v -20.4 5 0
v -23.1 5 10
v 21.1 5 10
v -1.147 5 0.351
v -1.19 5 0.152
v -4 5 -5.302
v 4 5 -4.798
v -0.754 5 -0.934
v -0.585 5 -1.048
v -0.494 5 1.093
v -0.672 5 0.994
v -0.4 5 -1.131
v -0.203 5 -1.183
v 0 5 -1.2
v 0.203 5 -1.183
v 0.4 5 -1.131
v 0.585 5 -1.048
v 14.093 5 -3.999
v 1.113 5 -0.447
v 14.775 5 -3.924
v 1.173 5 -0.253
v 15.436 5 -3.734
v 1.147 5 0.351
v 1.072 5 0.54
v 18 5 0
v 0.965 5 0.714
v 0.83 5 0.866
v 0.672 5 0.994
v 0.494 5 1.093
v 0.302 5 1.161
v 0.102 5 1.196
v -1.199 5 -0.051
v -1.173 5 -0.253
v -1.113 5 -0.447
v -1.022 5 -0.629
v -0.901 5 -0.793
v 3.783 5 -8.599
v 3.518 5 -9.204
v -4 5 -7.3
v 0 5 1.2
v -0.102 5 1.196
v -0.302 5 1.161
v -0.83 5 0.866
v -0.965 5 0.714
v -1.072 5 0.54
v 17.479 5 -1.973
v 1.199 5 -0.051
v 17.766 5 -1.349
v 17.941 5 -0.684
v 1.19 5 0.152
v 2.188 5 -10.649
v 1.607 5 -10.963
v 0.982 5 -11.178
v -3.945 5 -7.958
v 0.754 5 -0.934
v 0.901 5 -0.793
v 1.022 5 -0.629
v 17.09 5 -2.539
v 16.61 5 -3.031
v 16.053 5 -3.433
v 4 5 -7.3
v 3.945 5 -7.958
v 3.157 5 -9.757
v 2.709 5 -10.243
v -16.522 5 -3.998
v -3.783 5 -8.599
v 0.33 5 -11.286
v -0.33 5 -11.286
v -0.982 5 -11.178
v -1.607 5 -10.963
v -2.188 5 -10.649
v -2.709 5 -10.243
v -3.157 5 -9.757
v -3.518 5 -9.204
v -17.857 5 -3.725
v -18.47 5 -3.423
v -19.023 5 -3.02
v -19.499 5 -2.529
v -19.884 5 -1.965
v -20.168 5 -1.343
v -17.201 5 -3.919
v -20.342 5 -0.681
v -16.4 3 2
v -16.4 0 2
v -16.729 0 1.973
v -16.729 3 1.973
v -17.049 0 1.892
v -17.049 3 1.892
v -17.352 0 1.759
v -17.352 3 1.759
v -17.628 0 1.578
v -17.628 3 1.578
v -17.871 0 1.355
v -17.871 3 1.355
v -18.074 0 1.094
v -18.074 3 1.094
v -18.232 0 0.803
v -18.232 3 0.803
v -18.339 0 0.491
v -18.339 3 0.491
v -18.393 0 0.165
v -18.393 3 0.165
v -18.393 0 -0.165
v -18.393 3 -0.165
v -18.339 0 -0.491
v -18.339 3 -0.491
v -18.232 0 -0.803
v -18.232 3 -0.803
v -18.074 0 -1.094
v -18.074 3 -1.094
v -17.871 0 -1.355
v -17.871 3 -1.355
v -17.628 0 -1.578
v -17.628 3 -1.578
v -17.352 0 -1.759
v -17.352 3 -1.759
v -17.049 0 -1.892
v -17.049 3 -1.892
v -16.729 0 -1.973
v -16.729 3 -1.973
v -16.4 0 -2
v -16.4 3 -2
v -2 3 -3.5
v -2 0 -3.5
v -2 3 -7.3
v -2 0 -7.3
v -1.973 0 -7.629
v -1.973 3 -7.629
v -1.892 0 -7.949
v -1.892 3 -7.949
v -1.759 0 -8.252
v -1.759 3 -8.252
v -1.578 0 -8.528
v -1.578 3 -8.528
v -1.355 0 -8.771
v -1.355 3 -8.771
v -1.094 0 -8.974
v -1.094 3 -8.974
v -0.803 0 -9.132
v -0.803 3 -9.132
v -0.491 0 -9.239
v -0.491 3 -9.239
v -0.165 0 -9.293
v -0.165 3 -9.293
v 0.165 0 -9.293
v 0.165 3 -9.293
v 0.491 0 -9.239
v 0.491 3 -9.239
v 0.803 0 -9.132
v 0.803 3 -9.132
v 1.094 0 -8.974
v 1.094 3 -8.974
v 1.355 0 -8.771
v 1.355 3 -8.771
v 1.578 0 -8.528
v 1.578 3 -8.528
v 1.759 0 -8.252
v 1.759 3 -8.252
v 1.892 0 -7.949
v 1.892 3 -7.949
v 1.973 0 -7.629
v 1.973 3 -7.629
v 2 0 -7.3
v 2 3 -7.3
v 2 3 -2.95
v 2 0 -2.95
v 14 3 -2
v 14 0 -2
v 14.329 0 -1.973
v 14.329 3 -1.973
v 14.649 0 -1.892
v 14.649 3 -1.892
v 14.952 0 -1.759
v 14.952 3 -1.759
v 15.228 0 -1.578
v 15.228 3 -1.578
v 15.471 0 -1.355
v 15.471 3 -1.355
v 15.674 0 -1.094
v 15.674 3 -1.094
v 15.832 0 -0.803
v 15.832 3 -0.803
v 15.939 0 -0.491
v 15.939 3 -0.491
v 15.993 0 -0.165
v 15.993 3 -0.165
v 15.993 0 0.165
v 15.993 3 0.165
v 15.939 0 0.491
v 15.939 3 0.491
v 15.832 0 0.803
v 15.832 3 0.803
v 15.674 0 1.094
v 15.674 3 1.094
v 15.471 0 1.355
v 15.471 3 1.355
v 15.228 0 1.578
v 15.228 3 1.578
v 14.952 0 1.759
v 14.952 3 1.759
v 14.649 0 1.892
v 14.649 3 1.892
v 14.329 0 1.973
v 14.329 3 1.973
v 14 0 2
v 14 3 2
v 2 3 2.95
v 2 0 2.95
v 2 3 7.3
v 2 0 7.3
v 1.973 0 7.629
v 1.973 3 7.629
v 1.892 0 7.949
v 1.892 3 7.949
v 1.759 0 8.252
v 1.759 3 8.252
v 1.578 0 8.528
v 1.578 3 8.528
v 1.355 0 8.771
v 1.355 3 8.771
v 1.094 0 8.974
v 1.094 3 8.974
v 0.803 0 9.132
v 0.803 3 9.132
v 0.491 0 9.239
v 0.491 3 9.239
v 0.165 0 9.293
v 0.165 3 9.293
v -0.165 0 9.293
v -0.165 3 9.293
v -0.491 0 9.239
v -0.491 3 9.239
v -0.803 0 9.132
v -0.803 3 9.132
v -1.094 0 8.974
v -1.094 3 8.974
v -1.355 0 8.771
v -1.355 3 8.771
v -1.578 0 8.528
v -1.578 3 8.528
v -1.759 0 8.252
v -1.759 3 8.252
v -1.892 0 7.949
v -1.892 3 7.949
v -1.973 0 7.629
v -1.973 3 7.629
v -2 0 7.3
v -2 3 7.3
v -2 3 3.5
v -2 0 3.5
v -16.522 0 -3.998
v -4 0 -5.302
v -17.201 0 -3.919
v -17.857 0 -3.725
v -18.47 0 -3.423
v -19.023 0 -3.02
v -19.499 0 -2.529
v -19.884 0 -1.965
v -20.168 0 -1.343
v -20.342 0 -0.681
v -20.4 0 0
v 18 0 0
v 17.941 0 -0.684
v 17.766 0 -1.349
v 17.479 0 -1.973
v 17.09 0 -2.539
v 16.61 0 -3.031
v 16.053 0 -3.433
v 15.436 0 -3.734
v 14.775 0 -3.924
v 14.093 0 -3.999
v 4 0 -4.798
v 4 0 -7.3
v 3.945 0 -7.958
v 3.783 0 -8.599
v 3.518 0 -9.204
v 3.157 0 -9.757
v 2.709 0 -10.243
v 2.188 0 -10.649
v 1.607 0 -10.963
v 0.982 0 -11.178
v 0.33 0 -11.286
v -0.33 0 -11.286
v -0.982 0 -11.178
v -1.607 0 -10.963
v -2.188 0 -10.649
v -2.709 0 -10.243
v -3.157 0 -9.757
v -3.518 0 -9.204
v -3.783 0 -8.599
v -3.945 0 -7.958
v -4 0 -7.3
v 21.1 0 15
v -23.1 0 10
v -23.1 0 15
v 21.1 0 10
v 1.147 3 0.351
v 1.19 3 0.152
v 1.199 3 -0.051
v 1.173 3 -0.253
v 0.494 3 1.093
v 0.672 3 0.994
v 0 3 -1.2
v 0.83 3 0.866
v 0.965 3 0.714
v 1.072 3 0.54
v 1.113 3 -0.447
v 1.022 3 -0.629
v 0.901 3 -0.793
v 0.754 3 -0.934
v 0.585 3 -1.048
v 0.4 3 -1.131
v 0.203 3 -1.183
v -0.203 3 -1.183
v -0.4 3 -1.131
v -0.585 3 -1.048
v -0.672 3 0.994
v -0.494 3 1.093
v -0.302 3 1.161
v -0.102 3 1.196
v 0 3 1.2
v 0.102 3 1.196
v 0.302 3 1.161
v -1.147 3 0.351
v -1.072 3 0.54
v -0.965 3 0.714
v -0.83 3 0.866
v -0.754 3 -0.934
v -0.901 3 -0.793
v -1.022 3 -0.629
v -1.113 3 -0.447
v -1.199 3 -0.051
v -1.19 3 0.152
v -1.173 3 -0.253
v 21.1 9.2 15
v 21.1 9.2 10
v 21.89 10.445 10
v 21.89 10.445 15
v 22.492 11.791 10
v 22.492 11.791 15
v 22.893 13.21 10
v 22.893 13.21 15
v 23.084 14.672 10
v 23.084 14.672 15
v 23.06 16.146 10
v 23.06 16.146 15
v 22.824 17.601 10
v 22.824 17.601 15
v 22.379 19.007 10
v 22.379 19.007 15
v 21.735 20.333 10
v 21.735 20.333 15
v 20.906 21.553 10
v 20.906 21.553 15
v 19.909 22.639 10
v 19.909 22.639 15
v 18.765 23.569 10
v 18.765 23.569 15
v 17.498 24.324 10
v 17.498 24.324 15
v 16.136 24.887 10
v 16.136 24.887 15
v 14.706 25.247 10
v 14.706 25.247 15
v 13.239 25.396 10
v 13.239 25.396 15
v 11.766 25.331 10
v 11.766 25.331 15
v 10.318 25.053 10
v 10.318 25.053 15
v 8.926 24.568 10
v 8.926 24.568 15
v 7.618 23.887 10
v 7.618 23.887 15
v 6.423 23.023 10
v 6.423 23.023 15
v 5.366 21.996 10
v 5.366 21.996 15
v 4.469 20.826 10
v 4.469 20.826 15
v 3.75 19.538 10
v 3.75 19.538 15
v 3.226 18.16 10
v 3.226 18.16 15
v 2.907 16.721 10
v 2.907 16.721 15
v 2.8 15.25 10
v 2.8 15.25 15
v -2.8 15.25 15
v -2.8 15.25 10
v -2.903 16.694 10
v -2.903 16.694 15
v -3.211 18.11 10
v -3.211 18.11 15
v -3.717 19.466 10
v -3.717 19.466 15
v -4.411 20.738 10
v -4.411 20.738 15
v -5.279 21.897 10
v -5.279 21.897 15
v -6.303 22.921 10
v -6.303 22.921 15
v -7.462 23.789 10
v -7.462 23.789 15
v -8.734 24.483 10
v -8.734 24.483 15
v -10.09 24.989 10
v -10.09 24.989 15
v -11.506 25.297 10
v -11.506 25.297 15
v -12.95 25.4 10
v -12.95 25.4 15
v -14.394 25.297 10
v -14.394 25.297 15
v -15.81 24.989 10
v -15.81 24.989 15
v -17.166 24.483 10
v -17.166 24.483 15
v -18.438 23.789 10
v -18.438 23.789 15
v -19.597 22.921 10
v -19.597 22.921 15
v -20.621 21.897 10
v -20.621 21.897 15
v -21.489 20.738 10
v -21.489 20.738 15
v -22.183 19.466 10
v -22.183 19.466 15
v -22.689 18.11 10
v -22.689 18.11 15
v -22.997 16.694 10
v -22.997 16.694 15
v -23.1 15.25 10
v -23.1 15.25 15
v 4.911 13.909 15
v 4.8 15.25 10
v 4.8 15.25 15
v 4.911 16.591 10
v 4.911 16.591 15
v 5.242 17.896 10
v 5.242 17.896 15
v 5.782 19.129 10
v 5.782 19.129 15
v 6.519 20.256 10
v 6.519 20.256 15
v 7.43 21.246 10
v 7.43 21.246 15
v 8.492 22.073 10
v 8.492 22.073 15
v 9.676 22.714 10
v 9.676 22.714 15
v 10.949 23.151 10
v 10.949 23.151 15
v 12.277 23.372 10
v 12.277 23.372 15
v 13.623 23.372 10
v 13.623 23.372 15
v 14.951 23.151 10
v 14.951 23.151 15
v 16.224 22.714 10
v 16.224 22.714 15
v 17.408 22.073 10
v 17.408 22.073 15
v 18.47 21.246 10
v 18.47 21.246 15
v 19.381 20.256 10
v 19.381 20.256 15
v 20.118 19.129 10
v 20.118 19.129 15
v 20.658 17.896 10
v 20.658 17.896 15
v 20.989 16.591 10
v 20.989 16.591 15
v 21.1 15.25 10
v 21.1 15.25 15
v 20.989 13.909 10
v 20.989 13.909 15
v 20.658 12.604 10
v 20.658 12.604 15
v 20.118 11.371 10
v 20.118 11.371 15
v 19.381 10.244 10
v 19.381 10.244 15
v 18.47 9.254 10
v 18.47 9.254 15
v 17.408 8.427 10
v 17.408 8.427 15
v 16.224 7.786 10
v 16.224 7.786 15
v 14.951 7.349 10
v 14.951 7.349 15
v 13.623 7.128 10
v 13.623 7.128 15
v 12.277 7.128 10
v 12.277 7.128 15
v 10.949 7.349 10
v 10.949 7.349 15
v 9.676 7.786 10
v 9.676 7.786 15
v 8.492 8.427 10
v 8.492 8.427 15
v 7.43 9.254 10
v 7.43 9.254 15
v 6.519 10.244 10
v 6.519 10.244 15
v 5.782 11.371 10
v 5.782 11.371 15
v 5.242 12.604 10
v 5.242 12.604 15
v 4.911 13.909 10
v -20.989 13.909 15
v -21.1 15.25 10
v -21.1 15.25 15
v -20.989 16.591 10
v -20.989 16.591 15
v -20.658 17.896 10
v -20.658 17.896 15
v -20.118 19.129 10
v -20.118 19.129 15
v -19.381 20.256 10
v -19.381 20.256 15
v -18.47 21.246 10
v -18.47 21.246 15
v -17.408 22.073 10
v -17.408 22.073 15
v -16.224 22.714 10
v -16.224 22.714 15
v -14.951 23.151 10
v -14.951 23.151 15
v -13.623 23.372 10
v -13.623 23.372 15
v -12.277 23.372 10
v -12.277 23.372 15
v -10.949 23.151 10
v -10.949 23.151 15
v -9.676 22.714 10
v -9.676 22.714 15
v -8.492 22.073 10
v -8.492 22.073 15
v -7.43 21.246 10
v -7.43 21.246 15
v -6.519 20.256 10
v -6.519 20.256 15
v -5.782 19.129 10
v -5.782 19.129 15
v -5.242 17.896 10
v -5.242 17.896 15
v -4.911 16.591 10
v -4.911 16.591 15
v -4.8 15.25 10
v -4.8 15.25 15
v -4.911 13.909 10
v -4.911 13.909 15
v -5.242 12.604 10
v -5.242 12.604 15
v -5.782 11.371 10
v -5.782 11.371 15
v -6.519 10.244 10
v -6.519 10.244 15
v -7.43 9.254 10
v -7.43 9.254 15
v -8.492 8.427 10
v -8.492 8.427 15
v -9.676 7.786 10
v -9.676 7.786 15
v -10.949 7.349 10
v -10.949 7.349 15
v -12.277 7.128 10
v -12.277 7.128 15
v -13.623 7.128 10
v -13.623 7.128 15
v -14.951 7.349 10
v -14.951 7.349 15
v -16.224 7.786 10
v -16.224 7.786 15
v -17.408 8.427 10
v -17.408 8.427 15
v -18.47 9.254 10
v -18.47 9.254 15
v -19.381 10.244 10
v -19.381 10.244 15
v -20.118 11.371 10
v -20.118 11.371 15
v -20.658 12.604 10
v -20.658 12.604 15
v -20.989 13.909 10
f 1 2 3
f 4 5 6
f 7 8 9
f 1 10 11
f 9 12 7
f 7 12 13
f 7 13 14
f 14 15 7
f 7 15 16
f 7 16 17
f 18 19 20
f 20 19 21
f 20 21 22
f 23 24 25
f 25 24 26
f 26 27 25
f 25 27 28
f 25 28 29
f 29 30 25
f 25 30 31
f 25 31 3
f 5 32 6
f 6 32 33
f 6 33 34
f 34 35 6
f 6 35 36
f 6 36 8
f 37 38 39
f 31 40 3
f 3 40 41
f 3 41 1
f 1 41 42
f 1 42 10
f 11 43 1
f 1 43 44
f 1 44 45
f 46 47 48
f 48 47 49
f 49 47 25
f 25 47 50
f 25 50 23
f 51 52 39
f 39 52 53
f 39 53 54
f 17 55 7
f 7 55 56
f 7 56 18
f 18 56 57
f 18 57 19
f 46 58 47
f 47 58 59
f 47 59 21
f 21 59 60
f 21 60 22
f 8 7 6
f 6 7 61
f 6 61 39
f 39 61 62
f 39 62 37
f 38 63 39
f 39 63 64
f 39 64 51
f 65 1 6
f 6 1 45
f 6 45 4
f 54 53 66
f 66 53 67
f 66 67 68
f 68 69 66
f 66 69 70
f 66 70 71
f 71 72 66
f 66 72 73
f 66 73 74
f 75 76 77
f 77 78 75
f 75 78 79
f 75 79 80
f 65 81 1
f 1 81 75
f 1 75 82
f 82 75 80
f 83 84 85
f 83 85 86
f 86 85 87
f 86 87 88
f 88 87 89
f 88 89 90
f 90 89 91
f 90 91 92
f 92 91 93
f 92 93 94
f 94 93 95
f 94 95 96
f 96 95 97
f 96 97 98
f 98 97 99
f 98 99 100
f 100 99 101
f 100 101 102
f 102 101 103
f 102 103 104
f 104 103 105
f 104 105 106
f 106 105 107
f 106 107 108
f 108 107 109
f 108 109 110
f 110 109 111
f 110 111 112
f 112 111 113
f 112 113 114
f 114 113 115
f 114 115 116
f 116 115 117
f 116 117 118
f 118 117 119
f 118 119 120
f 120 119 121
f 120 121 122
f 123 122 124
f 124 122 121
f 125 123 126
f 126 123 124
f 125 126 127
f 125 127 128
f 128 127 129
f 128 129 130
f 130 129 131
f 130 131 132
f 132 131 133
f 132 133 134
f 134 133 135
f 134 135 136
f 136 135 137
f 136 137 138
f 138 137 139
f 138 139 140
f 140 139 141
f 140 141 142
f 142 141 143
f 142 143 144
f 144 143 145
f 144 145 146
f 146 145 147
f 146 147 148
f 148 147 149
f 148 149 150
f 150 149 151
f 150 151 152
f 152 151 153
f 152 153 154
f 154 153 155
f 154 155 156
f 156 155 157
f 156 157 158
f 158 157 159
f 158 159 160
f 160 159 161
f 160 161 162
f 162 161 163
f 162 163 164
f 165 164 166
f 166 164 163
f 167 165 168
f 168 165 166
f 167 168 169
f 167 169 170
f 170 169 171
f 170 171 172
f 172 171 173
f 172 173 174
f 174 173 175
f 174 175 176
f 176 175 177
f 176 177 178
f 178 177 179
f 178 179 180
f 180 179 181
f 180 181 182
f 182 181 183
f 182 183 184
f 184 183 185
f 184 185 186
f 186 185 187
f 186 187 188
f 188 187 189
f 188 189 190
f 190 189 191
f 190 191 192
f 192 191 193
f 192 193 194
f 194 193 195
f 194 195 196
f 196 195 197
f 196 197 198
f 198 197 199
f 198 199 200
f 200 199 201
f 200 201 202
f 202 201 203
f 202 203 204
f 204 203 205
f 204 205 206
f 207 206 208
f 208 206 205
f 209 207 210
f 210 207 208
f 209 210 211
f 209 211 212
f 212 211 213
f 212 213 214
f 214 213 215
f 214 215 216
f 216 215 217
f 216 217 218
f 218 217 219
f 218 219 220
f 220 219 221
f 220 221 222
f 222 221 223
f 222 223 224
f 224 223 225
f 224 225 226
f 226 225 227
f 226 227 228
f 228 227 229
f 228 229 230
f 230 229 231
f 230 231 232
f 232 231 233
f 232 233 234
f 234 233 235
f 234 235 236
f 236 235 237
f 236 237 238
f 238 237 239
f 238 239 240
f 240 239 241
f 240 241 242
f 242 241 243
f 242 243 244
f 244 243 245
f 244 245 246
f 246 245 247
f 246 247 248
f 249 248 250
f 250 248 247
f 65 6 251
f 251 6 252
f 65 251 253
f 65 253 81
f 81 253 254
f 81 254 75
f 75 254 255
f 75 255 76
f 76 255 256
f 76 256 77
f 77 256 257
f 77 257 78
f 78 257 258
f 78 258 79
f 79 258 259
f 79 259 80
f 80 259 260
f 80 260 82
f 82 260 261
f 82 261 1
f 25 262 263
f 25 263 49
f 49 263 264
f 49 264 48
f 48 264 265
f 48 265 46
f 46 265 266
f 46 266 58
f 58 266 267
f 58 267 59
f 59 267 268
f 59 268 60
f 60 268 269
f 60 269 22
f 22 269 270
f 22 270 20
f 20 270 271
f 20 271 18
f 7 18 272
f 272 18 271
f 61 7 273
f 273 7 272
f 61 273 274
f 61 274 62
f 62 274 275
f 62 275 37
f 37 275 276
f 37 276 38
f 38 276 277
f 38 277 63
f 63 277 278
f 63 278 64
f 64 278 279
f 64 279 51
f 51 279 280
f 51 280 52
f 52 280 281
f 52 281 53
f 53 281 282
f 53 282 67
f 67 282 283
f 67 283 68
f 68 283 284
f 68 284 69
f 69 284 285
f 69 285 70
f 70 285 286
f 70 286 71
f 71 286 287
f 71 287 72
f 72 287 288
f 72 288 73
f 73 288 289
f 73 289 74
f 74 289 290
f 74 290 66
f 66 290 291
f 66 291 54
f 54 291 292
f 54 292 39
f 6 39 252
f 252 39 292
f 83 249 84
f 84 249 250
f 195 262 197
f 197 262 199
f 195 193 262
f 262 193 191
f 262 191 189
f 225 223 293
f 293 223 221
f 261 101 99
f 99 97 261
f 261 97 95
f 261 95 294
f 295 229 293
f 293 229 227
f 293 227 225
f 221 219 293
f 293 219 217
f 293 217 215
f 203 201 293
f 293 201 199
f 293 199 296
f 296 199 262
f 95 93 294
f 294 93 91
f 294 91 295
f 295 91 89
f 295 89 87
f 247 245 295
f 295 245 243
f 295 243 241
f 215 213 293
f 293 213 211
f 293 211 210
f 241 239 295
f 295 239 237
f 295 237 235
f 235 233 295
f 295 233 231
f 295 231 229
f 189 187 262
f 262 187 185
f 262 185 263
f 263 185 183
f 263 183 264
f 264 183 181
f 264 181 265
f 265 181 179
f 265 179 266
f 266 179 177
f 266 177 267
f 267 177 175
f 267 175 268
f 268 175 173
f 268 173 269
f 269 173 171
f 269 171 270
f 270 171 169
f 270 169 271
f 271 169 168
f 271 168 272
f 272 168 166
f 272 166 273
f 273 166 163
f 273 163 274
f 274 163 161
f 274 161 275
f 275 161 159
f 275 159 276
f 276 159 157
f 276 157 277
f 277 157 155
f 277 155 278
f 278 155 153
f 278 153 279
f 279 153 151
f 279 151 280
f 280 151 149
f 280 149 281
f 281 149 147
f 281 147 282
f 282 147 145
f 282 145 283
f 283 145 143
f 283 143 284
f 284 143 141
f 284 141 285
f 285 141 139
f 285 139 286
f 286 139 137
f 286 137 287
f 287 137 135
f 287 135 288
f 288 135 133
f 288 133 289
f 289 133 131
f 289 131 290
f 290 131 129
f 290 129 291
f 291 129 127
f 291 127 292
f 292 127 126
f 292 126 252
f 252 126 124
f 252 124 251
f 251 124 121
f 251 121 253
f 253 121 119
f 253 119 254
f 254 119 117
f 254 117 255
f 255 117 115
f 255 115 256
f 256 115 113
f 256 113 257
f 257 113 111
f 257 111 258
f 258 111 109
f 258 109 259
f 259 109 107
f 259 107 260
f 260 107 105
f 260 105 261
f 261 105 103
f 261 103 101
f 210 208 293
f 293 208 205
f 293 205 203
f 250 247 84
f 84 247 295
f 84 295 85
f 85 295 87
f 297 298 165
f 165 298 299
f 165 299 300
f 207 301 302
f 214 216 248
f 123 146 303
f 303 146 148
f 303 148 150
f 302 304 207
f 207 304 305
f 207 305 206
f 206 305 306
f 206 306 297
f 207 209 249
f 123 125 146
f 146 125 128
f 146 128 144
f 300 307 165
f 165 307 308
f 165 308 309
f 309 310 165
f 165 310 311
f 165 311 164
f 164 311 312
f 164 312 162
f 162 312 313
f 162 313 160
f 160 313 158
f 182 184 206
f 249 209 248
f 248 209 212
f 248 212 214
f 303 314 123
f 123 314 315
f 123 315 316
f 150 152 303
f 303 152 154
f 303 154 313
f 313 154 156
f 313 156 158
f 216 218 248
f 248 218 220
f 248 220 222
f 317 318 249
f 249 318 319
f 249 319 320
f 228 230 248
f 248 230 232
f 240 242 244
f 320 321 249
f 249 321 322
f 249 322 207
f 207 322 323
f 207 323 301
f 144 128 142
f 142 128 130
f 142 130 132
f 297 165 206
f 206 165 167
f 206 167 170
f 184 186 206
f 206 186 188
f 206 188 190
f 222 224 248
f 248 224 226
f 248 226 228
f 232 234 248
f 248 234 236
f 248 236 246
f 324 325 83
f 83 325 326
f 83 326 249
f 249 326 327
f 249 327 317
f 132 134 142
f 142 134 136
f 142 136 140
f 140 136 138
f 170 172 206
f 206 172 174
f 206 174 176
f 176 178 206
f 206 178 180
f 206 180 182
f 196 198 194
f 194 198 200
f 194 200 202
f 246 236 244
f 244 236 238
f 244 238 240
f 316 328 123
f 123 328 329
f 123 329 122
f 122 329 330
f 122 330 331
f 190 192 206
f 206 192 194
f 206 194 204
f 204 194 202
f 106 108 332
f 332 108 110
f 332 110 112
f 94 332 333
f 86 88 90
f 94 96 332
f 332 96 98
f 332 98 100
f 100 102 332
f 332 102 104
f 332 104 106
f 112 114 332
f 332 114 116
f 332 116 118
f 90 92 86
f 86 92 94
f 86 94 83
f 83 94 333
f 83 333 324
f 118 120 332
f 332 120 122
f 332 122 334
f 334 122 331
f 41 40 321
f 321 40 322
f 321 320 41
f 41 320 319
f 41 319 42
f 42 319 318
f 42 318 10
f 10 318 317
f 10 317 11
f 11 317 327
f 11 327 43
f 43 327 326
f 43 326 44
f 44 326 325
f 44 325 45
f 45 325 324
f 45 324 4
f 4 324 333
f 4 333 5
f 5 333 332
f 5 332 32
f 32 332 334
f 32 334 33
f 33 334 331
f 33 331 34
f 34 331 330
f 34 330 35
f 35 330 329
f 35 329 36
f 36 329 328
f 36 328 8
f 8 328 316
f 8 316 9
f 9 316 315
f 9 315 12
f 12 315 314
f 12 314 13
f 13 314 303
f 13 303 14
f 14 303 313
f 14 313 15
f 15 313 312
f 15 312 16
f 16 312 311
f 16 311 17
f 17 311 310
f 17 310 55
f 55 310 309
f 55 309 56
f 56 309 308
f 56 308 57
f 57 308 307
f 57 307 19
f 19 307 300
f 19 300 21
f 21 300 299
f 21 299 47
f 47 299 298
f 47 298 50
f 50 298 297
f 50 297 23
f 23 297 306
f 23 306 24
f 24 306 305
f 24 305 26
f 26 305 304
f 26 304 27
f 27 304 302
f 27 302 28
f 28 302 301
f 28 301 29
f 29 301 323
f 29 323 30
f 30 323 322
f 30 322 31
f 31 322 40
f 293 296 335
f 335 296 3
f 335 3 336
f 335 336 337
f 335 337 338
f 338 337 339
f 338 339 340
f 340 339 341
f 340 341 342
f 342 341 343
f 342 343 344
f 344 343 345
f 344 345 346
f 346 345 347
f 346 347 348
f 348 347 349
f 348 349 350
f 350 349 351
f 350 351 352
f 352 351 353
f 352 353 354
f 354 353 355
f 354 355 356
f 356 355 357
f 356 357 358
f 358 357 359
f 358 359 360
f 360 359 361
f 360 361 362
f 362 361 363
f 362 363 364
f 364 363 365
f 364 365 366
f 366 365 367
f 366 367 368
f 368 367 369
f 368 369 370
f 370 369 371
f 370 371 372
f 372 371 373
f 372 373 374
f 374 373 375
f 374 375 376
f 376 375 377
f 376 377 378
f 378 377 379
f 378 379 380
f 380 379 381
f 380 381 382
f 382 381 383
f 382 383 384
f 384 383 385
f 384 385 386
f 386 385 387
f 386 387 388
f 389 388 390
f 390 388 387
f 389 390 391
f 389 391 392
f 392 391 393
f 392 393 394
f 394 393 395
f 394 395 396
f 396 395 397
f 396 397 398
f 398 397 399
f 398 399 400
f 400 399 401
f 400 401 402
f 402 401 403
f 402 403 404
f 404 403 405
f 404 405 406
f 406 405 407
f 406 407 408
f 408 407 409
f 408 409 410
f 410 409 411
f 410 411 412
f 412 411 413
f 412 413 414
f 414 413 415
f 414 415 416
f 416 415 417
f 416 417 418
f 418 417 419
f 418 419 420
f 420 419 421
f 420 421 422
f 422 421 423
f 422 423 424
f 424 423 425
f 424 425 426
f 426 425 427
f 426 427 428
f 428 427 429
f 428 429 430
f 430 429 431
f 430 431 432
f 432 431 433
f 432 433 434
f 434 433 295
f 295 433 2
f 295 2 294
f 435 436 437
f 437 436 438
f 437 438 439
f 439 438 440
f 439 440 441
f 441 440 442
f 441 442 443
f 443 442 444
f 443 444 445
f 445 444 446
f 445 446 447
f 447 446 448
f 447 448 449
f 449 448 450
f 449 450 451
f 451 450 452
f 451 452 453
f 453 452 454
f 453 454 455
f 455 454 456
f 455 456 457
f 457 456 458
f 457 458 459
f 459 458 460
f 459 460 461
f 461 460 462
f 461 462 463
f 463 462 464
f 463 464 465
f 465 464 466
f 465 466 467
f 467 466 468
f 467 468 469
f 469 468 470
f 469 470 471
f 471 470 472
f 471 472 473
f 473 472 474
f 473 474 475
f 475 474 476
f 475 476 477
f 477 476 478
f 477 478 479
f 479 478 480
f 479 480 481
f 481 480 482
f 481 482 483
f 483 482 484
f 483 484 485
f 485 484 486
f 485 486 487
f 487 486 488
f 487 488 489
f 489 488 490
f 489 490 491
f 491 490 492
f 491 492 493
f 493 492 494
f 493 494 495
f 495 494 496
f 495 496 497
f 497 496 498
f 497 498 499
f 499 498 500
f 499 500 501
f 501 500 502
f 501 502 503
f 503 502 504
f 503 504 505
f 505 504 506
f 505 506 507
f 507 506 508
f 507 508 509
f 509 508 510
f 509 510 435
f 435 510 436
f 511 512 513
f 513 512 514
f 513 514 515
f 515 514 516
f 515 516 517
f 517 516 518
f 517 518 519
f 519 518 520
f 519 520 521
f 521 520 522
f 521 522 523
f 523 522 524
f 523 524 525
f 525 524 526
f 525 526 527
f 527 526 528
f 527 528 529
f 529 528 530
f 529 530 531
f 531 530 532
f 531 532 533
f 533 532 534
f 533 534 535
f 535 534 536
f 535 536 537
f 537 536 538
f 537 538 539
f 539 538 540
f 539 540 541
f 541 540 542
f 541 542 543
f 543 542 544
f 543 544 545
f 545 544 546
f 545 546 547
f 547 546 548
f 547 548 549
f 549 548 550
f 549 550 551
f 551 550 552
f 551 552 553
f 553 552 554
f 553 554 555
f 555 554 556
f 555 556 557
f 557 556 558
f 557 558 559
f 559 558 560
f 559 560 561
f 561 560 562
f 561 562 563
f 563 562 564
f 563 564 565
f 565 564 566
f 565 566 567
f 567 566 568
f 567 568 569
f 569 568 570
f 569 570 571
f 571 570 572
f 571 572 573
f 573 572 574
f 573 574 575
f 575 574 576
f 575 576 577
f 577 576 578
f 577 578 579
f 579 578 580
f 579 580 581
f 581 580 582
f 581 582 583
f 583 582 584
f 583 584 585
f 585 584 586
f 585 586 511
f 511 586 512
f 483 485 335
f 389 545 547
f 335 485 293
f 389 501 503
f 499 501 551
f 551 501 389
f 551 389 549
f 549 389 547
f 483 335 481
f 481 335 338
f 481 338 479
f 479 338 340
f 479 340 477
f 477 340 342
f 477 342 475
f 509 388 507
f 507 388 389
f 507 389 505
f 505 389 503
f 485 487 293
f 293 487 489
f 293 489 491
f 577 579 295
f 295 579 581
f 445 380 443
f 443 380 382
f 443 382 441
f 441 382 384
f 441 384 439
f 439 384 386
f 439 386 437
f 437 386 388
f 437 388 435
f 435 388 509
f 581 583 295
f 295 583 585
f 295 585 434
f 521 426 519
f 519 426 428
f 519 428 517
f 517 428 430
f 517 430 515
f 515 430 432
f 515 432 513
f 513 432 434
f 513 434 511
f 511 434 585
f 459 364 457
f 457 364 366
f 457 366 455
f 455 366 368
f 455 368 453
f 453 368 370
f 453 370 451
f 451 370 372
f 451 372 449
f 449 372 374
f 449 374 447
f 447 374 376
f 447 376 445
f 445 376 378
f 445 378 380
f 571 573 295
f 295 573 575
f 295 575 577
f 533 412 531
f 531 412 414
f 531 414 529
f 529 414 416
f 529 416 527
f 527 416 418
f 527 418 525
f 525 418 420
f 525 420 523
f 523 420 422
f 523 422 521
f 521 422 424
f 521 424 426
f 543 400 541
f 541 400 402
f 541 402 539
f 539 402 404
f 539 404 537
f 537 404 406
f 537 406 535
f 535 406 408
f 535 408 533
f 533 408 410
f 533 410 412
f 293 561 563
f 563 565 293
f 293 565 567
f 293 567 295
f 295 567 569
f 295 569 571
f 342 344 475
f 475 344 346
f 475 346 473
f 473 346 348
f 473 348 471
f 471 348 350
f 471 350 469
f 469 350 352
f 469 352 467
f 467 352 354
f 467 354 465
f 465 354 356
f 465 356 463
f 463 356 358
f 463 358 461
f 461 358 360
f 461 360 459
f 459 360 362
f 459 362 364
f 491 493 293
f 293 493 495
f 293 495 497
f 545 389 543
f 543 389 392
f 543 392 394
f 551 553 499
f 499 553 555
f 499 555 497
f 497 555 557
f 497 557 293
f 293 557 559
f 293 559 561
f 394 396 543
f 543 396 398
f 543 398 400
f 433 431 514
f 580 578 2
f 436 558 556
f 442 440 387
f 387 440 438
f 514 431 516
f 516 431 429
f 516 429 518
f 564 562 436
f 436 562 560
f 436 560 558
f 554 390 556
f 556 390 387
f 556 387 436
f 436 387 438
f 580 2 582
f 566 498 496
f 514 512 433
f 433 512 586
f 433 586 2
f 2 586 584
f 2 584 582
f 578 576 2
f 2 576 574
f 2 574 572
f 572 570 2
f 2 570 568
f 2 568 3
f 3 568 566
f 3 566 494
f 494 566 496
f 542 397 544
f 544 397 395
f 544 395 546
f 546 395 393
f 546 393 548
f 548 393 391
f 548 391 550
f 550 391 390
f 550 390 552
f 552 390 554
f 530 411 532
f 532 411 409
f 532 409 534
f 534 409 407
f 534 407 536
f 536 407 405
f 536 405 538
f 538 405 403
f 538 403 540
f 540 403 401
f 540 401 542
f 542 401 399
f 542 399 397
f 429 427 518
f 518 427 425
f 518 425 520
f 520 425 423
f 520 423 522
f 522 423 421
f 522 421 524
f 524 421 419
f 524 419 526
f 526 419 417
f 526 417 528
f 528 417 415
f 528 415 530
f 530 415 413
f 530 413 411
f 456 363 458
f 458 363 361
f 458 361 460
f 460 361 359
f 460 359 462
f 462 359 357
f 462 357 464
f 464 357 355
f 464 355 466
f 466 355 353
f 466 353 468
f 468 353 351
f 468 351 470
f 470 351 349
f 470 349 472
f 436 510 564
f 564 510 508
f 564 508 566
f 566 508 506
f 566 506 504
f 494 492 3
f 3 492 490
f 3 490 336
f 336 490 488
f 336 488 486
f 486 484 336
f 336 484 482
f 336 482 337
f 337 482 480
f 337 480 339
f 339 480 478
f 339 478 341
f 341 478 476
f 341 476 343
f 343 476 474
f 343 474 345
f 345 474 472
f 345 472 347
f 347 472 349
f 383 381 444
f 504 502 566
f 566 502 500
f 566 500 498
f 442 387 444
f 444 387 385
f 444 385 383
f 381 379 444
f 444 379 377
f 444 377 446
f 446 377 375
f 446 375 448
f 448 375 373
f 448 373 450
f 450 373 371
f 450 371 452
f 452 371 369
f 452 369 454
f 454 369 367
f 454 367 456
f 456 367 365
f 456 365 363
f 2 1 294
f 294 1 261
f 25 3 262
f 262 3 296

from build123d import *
from build123d.topology import SkipClean

# Parameters (mm, degrees)
BOSS_EXTRUDE1_DEPTH = 3
SKETCH3_R           = 1.2
BOSS_EXTRUDE2_DEPTH = 2
SKETCH6_R           = 8.15
BOSS_EXTRUDE4_DEPTH = 5
BOSS_EXTRUDE5_START = -5
BOSS_EXTRUDE5_DEPTH = 5


with BuildPart() as part:
    # Sketch2 → Boss-Extrude1 (new body)
    with BuildSketch(Plane(origin=(0, 0, 0), x_dir=(1, 0, 0), z_dir=(0, 1, 0))):
        with BuildLine():
            Line((4, -7.3), (4, -4.797924238))
            Line((4, -4.797924238), (14.092577275, -3.998928538))
            ThreePointArc((14.092577275, -3.998928538), (18, 0), (14.092577275, 3.998928538))
            Line((14.092577275, 3.998928538), (4, 4.797924238))
            Line((4, 4.797924238), (4, 7.3))
            ThreePointArc((4, 7.3), (0, 11.3), (-4, 7.3))
            Line((-4, 7.3), (-4, 5.302488085))
            Line((-4, 5.302488085), (-16.521647449, 3.998149809))
            ThreePointArc((-16.521647449, 3.998149809), (-20.4, 0), (-16.521647449, -3.998149809))
            Line((-16.521647449, -3.998149809), (-4, -5.302488085))
            Line((-4, -5.302488085), (-4, -7.3))
            ThreePointArc((-4, -7.3), (0, -11.3), (4, -7.3))
        make_face()
        with BuildLine():
            ThreePointArc((-16.4, -2), (-18.4, 0), (-16.4, 2))
            Line((-16.4, 2), (-2, 3.5))
            Line((-2, 3.5), (-2, 7.3))
            ThreePointArc((-2, 7.3), (0, 9.3), (2, 7.3))
            Line((2, 7.3), (2, 2.95))
            Line((2, 2.95), (14, 2))
            ThreePointArc((14, 2), (16, 0), (14, -2))
            Line((14, -2), (2, -2.95))
            Line((2, -2.95), (2, -7.3))
            ThreePointArc((2, -7.3), (0, -9.3), (-2, -7.3))
            Line((-2, -7.3), (-2, -3.5))
            Line((-2, -3.5), (-16.4, -2))
        make_face(mode=Mode.SUBTRACT)
    extrude(amount=BOSS_EXTRUDE1_DEPTH)

    # Sketch3 → Boss-Extrude2 (add)
    with BuildSketch(Plane(origin=(0, 3, 0), x_dir=(1, 0, 0), z_dir=(0, 1, 0))):
        with BuildLine():
            Line((-4, 5.302488085), (-16.521647449, 3.998149809))
            ThreePointArc((-16.521647449, 3.998149809), (-20.4, 0), (-16.521647449, -3.998149809))
            Line((-16.521647449, -3.998149809), (-4, -5.302488085))
            Line((-4, -5.302488085), (-4, -7.3))
            ThreePointArc((-4, -7.3), (0, -11.3), (4, -7.3))
            Line((4, -7.3), (4, -4.797924238))
            Line((4, -4.797924238), (14.092577275, -3.998928538))
            ThreePointArc((14.092577275, -3.998928538), (18, 0), (14.092577275, 3.998928538))
            Line((14.092577275, 3.998928538), (4, 4.797924238))
            Line((4, 4.797924238), (4, 7.3))
            ThreePointArc((4, 7.3), (0, 11.3), (-4, 7.3))
            Line((-4, 7.3), (-4, 5.302488085))
        make_face()
        with Locations(Location((0, 0, 0), (0, 0, 270))):
            Circle(SKETCH3_R, mode=Mode.SUBTRACT)
    extrude(amount=BOSS_EXTRUDE2_DEPTH)

    # Sketch6 → Boss-Extrude4 (add)
    with BuildSketch(Plane.XY.offset(10)):
        with BuildLine():
            Line((21.1, 5), (21.1, 9.200206615))
            ThreePointArc((21.1, 9.200206615), (16.135906464, 24.887037927), (2.8, 15.25))
            Line((2.8, 15.25), (-2.8, 15.25))
            ThreePointArc((-2.8, 15.25), (-12.95, 25.4), (-23.1, 15.25))
            Line((-23.1, 15.25), (-23.1, 5))
            Line((-23.1, 5), (21.1, 5))
        make_face()
        with Locations((-12.95, 15.25)):
            Circle(SKETCH6_R, mode=Mode.SUBTRACT)
        with Locations((12.95, 15.25)):
            Circle(SKETCH6_R, mode=Mode.SUBTRACT)
    extrude(amount=BOSS_EXTRUDE4_DEPTH)

    # Sketch8 → Boss-Extrude5 (add)
    with SkipClean():  # the faces are left unmerged after this step: merging them gives an invalid solid
        with BuildSketch(Plane(origin=(0, 5, 0), x_dir=(1, 0, 0), z_dir=(0, 1, 0)).offset(BOSS_EXTRUDE5_START)):
            with BuildLine():
                ThreePointArc((-16.521647449, -3.998149809), (-19.271113878, -2.785086193), (-20.4, 0))
                Line((-20.4, 0), (-23.1, -10))
                Line((-23.1, -10), (-2.951270913, -10))
                ThreePointArc((-2.951270913, -10), (-3.728611246, -8.748260396), (-4, -7.3))
                Line((-4, -7.3), (-4, -5.302488085))
                Line((-4, -5.302488085), (-16.521647449, -3.998149809))
            make_face()
            with BuildLine():
                ThreePointArc((4, -7.3), (3.728611246, -8.748260396), (2.951270913, -10))
                Line((2.951270913, -10), (21.1, -10))
                Line((21.1, -10), (18, 0))
                ThreePointArc((18, 0), (16.860970911, -2.795504507), (14.092577275, -3.998928538))
                Line((14.092577275, -3.998928538), (4, -4.797924238))
                Line((4, -4.797924238), (4, -7.3))
            make_face()
            with BuildLine():
                ThreePointArc((-2.951270913, -10), (0, -11.3), (2.951270913, -10))
                Line((2.951270913, -10), (21.1, -10))
                Line((21.1, -10), (21.1, -15))
                Line((21.1, -15), (-23.1, -15))
                Line((-23.1, -15), (-23.1, -10))
                Line((-23.1, -10), (-2.951270913, -10))
            make_face()
        extrude(amount=BOSS_EXTRUDE5_DEPTH)


solid = part.part
